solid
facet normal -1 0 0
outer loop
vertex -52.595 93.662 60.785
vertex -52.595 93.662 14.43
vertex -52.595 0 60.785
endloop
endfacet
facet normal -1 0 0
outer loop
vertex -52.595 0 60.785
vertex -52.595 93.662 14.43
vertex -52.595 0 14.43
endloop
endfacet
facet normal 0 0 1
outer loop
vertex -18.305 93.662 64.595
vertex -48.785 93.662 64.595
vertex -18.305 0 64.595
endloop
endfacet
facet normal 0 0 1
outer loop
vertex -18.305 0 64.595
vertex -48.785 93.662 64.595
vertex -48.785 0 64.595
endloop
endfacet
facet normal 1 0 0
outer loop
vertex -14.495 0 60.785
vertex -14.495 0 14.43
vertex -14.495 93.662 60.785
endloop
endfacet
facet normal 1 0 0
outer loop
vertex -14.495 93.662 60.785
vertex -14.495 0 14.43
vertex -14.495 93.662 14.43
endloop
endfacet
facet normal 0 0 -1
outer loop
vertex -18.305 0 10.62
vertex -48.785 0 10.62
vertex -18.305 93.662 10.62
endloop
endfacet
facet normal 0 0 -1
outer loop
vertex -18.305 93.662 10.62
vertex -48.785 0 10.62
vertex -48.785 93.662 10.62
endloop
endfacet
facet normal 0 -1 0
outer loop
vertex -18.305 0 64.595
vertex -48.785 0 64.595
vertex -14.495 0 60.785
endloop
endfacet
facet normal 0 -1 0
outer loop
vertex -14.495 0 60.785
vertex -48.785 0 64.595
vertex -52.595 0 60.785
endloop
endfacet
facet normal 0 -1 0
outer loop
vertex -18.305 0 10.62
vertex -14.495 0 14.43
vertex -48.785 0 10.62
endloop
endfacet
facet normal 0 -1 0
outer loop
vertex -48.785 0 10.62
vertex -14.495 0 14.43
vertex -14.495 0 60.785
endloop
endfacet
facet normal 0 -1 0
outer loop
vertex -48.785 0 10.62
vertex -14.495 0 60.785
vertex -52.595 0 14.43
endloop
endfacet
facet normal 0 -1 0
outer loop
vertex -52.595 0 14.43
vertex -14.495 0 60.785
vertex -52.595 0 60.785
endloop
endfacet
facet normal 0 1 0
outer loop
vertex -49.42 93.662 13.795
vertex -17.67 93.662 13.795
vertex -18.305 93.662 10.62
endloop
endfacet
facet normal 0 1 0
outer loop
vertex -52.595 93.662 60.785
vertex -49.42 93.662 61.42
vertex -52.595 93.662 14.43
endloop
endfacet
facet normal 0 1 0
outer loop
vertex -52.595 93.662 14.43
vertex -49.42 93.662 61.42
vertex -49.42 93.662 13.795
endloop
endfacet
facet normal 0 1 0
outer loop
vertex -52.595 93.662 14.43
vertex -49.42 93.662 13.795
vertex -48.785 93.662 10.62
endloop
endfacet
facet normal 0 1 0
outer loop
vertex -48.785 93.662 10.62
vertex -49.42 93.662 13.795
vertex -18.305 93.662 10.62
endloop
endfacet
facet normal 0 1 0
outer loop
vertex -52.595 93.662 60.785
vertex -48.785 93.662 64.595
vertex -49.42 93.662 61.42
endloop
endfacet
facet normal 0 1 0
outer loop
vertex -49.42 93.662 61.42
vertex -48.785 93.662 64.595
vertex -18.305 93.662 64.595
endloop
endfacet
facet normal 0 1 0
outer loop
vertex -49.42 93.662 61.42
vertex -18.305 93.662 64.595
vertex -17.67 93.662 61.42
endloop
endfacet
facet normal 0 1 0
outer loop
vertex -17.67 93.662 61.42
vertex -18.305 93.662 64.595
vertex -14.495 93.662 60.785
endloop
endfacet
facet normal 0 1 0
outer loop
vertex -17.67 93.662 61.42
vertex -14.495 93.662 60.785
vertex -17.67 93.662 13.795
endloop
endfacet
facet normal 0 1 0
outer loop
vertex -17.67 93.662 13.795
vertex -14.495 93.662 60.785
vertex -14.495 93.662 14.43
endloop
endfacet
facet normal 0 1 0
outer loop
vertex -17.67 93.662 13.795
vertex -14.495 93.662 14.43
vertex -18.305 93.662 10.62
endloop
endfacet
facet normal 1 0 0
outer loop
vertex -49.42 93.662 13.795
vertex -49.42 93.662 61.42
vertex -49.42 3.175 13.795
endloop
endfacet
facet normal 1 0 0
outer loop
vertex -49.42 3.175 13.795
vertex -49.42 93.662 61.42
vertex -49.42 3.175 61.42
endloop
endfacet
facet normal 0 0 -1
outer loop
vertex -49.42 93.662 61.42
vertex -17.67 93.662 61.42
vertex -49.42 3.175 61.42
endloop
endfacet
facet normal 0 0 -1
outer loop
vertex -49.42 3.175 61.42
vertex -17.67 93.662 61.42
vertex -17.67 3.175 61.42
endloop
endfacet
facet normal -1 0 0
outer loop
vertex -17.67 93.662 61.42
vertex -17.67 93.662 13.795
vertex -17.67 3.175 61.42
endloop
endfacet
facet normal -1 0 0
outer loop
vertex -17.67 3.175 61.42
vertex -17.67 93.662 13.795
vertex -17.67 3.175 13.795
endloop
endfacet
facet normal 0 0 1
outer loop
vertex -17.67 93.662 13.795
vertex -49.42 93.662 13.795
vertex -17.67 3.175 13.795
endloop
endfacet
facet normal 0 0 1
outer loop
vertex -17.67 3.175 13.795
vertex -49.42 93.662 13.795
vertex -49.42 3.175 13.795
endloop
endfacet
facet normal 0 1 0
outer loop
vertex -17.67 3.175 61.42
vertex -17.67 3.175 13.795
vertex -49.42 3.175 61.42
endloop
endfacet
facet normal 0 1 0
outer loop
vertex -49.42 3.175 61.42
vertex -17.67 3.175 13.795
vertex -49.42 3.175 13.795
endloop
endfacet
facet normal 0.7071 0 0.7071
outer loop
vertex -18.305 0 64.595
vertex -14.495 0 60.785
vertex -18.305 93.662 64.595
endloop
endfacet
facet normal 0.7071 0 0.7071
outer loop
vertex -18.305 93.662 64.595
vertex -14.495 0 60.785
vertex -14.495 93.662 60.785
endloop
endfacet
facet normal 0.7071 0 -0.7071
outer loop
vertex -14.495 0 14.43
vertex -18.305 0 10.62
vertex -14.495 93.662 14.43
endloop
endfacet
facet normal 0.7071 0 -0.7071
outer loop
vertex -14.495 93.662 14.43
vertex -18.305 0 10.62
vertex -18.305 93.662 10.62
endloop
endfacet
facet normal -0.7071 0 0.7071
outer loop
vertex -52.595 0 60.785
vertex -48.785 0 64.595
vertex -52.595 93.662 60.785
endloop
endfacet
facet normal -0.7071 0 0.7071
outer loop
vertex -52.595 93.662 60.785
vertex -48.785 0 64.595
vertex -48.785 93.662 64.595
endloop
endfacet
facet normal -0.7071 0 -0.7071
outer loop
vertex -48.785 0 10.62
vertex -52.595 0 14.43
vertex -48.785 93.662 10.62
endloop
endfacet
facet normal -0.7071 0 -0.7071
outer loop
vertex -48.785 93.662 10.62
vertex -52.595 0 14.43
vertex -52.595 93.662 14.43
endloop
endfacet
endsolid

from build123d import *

# Parameters (mm, degrees)
SKETCH1_W           = 38.1
SKETCH1_H           = 53.975
BOSS_EXTRUDE1_DEPTH = 3.175
SKETCH2_W           = 38.1
SKETCH2_H           = 53.975
SKETCH2_W_2         = 31.75
SKETCH2_H_2         = 47.625
BOSS_EXTRUDE2_DEPTH = 90.4875
CHAMFER1_SIZE       = 3.81


with BuildPart() as part:
    # Sketch1 → Boss-Extrude1 (new body)
    with BuildSketch(Plane(origin=(0, 0, 0), x_dir=(1, 0, 0), z_dir=(0, 1, 0))):
        with Locations((-33.545007613, -37.607739585)):
            Rectangle(SKETCH1_W, SKETCH1_H)
    extrude(amount=BOSS_EXTRUDE1_DEPTH)

    # Sketch2 → Boss-Extrude2 (add)
    with BuildSketch(Plane(origin=(0, 3.175, 0), x_dir=(1, 0, 0), z_dir=(0, 1, 0))):
        with Locations((-33.545007613, -37.607739585)):
            Rectangle(SKETCH2_W, SKETCH2_H)
        with Locations((-33.545007613, -37.607739585)):
            Rectangle(SKETCH2_W_2, SKETCH2_H_2, mode=Mode.SUBTRACT)
    extrude(amount=BOSS_EXTRUDE2_DEPTH)

    # Chamfer1
    chamfer1_edges = [part.edges().sort_by_distance(p)[0] for p in [
        (-52.595007613, 46.83125, 10.620239585),
        (-14.495007613, 46.83125, 10.620239585),
        (-14.495007613, 46.83125, 64.595239585),
        (-52.595007613, 46.83125, 64.595239585),
    ]]
    chamfer(chamfer1_edges, length=CHAMFER1_SIZE)


solid = part.part
